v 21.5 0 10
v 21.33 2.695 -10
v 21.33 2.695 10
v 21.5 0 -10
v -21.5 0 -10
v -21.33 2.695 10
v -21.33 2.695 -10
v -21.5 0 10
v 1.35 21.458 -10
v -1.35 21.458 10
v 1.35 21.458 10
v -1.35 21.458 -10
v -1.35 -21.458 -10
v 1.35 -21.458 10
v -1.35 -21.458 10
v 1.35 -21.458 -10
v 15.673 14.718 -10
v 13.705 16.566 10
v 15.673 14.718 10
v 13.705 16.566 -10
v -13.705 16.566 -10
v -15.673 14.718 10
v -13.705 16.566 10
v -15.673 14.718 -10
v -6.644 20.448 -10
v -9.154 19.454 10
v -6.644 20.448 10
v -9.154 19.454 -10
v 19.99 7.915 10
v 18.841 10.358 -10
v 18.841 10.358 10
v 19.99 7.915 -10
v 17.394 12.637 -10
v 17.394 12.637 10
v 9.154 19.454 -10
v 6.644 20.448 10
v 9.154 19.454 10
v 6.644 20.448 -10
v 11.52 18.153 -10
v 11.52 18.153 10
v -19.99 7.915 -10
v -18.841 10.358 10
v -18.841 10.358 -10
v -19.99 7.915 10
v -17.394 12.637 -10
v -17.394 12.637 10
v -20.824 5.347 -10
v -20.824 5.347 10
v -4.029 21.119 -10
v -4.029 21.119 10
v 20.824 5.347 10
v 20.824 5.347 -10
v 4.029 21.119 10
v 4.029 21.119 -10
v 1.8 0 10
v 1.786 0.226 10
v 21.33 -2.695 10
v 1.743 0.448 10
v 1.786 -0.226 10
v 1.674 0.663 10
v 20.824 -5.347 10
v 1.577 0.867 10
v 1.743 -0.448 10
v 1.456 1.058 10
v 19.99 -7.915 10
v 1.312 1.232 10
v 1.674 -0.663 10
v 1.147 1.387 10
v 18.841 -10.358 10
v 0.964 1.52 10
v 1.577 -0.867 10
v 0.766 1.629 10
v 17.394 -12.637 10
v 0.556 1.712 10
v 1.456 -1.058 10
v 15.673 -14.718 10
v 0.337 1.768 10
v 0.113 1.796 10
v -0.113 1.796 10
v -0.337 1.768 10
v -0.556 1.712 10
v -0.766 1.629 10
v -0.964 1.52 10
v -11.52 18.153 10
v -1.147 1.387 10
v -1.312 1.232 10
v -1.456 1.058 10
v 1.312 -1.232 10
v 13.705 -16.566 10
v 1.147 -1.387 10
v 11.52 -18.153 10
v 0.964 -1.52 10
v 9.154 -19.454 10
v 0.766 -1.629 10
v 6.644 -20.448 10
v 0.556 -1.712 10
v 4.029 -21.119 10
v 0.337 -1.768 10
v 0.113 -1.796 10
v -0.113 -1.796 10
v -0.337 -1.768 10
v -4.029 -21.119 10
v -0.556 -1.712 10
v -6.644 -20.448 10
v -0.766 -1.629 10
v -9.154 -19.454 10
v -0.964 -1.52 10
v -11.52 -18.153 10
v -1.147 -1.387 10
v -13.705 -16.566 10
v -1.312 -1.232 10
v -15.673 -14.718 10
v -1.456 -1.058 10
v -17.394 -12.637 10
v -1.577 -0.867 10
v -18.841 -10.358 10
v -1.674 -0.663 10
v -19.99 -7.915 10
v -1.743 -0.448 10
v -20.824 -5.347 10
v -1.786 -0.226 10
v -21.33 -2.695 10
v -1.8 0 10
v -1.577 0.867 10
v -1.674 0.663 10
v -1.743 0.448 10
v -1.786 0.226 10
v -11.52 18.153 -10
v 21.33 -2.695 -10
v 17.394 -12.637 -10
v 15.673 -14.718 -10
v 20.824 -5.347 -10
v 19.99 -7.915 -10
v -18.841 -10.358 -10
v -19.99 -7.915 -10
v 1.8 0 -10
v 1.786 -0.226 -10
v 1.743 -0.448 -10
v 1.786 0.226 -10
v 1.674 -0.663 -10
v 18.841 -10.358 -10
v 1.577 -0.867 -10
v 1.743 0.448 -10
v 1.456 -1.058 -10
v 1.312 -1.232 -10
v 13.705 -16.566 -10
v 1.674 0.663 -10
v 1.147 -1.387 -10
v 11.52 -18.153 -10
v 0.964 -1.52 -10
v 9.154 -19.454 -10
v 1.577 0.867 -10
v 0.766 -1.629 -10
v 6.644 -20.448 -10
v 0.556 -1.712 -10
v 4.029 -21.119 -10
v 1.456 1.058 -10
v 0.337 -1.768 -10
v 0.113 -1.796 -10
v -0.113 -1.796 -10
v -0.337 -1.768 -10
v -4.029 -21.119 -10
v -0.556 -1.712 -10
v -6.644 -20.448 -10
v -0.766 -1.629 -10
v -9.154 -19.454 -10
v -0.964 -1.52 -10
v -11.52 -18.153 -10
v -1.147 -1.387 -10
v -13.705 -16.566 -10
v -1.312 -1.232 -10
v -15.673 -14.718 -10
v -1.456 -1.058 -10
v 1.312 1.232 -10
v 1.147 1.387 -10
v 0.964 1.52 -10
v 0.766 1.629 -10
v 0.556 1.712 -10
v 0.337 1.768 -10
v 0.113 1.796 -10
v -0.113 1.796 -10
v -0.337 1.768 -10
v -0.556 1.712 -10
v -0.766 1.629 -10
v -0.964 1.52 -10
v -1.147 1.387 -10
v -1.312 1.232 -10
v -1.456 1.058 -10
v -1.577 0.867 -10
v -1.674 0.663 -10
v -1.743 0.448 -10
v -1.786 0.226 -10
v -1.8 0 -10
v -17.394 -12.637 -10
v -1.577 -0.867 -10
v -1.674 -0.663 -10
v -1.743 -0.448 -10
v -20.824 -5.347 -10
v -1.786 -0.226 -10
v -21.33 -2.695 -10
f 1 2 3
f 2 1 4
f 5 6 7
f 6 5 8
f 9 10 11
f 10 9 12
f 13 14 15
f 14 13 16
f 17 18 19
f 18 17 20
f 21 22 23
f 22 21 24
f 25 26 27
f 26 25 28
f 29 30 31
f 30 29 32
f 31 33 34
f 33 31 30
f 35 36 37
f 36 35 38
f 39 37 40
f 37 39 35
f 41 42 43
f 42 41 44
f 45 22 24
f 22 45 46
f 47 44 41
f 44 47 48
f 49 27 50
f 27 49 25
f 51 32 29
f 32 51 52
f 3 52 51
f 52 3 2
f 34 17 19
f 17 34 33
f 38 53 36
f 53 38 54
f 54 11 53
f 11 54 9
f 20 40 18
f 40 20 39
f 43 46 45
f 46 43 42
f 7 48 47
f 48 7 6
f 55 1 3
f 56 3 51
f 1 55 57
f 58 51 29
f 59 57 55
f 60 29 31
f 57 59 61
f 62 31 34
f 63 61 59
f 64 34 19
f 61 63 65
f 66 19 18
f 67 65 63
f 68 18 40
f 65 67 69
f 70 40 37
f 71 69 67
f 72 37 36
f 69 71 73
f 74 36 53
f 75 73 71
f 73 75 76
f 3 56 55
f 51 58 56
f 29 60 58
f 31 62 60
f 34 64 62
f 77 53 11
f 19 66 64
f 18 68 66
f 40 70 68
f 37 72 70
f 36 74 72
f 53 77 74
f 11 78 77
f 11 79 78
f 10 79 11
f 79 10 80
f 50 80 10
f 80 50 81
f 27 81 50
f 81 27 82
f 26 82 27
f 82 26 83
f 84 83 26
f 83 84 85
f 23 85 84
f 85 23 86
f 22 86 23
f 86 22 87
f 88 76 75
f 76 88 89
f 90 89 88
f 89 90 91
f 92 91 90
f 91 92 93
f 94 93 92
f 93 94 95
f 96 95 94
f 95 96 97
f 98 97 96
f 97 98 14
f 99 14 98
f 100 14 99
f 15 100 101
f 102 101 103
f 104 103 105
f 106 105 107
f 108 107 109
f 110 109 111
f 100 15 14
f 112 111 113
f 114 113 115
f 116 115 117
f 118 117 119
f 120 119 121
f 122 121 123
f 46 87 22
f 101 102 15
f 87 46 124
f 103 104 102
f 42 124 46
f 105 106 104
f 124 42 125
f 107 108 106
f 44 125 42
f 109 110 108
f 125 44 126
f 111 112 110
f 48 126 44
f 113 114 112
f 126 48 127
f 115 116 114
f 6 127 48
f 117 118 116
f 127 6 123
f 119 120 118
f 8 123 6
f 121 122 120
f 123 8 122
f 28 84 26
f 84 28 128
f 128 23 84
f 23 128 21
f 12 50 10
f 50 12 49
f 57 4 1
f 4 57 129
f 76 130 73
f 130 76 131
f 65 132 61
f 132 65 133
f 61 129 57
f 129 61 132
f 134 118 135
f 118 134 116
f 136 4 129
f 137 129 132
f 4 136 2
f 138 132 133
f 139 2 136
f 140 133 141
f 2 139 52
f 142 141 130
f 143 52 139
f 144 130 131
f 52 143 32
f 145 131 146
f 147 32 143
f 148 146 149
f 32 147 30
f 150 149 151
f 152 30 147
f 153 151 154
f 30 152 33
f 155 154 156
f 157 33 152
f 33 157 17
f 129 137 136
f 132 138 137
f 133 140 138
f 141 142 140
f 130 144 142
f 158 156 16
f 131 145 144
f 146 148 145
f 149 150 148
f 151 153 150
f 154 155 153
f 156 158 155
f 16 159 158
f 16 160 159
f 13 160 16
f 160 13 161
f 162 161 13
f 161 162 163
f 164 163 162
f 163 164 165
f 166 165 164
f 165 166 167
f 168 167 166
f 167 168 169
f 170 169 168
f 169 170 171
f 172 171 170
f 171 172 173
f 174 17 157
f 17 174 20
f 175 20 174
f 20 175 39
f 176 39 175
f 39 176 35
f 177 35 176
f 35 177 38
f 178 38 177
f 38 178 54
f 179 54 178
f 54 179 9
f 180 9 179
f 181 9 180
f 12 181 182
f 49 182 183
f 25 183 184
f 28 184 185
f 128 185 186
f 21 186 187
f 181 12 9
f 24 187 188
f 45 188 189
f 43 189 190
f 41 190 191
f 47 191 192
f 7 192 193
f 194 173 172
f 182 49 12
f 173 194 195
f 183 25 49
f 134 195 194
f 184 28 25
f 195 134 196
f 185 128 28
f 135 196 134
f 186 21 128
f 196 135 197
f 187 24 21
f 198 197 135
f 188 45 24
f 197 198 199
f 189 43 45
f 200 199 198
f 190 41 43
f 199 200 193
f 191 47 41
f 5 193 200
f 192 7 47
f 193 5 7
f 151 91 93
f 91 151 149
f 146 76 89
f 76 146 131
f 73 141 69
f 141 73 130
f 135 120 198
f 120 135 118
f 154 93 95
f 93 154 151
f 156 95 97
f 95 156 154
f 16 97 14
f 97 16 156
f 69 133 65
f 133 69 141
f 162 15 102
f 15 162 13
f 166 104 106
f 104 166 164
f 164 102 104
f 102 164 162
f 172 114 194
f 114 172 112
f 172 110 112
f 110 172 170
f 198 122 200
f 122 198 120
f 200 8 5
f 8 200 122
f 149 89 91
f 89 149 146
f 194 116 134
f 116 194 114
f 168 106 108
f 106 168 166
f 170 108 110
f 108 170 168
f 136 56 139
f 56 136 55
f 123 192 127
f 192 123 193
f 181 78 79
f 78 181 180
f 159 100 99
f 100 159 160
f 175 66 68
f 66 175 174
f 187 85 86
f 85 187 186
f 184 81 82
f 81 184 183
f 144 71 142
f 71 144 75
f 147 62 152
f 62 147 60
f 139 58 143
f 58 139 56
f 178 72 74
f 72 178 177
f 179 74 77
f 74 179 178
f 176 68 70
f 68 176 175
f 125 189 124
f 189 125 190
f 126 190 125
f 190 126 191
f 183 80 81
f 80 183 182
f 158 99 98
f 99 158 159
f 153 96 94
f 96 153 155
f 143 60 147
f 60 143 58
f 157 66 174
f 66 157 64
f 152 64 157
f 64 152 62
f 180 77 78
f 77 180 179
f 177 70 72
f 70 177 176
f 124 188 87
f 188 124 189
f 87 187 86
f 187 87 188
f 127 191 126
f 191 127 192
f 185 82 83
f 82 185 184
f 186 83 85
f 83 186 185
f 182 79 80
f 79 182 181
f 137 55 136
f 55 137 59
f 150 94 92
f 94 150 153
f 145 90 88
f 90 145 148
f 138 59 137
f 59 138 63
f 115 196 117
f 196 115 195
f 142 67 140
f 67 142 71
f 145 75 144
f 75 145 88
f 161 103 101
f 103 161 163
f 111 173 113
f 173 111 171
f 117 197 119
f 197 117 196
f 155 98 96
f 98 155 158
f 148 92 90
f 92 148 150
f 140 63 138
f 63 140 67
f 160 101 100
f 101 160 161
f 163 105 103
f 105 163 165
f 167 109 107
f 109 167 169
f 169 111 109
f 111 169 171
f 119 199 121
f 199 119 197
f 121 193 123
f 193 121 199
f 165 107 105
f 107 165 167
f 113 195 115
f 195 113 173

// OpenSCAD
$fn = 50;


difference() {
	union() {
		translate(v = [0, 0, -10.0000000000]) {
			cylinder(h = 20, r = 21.5000000000);
		}
	}
	union() {
		translate(v = [0, 0, -100.0000000000]) {
			cylinder(h = 200, r = 1.8000000000);
		}
	}
}
